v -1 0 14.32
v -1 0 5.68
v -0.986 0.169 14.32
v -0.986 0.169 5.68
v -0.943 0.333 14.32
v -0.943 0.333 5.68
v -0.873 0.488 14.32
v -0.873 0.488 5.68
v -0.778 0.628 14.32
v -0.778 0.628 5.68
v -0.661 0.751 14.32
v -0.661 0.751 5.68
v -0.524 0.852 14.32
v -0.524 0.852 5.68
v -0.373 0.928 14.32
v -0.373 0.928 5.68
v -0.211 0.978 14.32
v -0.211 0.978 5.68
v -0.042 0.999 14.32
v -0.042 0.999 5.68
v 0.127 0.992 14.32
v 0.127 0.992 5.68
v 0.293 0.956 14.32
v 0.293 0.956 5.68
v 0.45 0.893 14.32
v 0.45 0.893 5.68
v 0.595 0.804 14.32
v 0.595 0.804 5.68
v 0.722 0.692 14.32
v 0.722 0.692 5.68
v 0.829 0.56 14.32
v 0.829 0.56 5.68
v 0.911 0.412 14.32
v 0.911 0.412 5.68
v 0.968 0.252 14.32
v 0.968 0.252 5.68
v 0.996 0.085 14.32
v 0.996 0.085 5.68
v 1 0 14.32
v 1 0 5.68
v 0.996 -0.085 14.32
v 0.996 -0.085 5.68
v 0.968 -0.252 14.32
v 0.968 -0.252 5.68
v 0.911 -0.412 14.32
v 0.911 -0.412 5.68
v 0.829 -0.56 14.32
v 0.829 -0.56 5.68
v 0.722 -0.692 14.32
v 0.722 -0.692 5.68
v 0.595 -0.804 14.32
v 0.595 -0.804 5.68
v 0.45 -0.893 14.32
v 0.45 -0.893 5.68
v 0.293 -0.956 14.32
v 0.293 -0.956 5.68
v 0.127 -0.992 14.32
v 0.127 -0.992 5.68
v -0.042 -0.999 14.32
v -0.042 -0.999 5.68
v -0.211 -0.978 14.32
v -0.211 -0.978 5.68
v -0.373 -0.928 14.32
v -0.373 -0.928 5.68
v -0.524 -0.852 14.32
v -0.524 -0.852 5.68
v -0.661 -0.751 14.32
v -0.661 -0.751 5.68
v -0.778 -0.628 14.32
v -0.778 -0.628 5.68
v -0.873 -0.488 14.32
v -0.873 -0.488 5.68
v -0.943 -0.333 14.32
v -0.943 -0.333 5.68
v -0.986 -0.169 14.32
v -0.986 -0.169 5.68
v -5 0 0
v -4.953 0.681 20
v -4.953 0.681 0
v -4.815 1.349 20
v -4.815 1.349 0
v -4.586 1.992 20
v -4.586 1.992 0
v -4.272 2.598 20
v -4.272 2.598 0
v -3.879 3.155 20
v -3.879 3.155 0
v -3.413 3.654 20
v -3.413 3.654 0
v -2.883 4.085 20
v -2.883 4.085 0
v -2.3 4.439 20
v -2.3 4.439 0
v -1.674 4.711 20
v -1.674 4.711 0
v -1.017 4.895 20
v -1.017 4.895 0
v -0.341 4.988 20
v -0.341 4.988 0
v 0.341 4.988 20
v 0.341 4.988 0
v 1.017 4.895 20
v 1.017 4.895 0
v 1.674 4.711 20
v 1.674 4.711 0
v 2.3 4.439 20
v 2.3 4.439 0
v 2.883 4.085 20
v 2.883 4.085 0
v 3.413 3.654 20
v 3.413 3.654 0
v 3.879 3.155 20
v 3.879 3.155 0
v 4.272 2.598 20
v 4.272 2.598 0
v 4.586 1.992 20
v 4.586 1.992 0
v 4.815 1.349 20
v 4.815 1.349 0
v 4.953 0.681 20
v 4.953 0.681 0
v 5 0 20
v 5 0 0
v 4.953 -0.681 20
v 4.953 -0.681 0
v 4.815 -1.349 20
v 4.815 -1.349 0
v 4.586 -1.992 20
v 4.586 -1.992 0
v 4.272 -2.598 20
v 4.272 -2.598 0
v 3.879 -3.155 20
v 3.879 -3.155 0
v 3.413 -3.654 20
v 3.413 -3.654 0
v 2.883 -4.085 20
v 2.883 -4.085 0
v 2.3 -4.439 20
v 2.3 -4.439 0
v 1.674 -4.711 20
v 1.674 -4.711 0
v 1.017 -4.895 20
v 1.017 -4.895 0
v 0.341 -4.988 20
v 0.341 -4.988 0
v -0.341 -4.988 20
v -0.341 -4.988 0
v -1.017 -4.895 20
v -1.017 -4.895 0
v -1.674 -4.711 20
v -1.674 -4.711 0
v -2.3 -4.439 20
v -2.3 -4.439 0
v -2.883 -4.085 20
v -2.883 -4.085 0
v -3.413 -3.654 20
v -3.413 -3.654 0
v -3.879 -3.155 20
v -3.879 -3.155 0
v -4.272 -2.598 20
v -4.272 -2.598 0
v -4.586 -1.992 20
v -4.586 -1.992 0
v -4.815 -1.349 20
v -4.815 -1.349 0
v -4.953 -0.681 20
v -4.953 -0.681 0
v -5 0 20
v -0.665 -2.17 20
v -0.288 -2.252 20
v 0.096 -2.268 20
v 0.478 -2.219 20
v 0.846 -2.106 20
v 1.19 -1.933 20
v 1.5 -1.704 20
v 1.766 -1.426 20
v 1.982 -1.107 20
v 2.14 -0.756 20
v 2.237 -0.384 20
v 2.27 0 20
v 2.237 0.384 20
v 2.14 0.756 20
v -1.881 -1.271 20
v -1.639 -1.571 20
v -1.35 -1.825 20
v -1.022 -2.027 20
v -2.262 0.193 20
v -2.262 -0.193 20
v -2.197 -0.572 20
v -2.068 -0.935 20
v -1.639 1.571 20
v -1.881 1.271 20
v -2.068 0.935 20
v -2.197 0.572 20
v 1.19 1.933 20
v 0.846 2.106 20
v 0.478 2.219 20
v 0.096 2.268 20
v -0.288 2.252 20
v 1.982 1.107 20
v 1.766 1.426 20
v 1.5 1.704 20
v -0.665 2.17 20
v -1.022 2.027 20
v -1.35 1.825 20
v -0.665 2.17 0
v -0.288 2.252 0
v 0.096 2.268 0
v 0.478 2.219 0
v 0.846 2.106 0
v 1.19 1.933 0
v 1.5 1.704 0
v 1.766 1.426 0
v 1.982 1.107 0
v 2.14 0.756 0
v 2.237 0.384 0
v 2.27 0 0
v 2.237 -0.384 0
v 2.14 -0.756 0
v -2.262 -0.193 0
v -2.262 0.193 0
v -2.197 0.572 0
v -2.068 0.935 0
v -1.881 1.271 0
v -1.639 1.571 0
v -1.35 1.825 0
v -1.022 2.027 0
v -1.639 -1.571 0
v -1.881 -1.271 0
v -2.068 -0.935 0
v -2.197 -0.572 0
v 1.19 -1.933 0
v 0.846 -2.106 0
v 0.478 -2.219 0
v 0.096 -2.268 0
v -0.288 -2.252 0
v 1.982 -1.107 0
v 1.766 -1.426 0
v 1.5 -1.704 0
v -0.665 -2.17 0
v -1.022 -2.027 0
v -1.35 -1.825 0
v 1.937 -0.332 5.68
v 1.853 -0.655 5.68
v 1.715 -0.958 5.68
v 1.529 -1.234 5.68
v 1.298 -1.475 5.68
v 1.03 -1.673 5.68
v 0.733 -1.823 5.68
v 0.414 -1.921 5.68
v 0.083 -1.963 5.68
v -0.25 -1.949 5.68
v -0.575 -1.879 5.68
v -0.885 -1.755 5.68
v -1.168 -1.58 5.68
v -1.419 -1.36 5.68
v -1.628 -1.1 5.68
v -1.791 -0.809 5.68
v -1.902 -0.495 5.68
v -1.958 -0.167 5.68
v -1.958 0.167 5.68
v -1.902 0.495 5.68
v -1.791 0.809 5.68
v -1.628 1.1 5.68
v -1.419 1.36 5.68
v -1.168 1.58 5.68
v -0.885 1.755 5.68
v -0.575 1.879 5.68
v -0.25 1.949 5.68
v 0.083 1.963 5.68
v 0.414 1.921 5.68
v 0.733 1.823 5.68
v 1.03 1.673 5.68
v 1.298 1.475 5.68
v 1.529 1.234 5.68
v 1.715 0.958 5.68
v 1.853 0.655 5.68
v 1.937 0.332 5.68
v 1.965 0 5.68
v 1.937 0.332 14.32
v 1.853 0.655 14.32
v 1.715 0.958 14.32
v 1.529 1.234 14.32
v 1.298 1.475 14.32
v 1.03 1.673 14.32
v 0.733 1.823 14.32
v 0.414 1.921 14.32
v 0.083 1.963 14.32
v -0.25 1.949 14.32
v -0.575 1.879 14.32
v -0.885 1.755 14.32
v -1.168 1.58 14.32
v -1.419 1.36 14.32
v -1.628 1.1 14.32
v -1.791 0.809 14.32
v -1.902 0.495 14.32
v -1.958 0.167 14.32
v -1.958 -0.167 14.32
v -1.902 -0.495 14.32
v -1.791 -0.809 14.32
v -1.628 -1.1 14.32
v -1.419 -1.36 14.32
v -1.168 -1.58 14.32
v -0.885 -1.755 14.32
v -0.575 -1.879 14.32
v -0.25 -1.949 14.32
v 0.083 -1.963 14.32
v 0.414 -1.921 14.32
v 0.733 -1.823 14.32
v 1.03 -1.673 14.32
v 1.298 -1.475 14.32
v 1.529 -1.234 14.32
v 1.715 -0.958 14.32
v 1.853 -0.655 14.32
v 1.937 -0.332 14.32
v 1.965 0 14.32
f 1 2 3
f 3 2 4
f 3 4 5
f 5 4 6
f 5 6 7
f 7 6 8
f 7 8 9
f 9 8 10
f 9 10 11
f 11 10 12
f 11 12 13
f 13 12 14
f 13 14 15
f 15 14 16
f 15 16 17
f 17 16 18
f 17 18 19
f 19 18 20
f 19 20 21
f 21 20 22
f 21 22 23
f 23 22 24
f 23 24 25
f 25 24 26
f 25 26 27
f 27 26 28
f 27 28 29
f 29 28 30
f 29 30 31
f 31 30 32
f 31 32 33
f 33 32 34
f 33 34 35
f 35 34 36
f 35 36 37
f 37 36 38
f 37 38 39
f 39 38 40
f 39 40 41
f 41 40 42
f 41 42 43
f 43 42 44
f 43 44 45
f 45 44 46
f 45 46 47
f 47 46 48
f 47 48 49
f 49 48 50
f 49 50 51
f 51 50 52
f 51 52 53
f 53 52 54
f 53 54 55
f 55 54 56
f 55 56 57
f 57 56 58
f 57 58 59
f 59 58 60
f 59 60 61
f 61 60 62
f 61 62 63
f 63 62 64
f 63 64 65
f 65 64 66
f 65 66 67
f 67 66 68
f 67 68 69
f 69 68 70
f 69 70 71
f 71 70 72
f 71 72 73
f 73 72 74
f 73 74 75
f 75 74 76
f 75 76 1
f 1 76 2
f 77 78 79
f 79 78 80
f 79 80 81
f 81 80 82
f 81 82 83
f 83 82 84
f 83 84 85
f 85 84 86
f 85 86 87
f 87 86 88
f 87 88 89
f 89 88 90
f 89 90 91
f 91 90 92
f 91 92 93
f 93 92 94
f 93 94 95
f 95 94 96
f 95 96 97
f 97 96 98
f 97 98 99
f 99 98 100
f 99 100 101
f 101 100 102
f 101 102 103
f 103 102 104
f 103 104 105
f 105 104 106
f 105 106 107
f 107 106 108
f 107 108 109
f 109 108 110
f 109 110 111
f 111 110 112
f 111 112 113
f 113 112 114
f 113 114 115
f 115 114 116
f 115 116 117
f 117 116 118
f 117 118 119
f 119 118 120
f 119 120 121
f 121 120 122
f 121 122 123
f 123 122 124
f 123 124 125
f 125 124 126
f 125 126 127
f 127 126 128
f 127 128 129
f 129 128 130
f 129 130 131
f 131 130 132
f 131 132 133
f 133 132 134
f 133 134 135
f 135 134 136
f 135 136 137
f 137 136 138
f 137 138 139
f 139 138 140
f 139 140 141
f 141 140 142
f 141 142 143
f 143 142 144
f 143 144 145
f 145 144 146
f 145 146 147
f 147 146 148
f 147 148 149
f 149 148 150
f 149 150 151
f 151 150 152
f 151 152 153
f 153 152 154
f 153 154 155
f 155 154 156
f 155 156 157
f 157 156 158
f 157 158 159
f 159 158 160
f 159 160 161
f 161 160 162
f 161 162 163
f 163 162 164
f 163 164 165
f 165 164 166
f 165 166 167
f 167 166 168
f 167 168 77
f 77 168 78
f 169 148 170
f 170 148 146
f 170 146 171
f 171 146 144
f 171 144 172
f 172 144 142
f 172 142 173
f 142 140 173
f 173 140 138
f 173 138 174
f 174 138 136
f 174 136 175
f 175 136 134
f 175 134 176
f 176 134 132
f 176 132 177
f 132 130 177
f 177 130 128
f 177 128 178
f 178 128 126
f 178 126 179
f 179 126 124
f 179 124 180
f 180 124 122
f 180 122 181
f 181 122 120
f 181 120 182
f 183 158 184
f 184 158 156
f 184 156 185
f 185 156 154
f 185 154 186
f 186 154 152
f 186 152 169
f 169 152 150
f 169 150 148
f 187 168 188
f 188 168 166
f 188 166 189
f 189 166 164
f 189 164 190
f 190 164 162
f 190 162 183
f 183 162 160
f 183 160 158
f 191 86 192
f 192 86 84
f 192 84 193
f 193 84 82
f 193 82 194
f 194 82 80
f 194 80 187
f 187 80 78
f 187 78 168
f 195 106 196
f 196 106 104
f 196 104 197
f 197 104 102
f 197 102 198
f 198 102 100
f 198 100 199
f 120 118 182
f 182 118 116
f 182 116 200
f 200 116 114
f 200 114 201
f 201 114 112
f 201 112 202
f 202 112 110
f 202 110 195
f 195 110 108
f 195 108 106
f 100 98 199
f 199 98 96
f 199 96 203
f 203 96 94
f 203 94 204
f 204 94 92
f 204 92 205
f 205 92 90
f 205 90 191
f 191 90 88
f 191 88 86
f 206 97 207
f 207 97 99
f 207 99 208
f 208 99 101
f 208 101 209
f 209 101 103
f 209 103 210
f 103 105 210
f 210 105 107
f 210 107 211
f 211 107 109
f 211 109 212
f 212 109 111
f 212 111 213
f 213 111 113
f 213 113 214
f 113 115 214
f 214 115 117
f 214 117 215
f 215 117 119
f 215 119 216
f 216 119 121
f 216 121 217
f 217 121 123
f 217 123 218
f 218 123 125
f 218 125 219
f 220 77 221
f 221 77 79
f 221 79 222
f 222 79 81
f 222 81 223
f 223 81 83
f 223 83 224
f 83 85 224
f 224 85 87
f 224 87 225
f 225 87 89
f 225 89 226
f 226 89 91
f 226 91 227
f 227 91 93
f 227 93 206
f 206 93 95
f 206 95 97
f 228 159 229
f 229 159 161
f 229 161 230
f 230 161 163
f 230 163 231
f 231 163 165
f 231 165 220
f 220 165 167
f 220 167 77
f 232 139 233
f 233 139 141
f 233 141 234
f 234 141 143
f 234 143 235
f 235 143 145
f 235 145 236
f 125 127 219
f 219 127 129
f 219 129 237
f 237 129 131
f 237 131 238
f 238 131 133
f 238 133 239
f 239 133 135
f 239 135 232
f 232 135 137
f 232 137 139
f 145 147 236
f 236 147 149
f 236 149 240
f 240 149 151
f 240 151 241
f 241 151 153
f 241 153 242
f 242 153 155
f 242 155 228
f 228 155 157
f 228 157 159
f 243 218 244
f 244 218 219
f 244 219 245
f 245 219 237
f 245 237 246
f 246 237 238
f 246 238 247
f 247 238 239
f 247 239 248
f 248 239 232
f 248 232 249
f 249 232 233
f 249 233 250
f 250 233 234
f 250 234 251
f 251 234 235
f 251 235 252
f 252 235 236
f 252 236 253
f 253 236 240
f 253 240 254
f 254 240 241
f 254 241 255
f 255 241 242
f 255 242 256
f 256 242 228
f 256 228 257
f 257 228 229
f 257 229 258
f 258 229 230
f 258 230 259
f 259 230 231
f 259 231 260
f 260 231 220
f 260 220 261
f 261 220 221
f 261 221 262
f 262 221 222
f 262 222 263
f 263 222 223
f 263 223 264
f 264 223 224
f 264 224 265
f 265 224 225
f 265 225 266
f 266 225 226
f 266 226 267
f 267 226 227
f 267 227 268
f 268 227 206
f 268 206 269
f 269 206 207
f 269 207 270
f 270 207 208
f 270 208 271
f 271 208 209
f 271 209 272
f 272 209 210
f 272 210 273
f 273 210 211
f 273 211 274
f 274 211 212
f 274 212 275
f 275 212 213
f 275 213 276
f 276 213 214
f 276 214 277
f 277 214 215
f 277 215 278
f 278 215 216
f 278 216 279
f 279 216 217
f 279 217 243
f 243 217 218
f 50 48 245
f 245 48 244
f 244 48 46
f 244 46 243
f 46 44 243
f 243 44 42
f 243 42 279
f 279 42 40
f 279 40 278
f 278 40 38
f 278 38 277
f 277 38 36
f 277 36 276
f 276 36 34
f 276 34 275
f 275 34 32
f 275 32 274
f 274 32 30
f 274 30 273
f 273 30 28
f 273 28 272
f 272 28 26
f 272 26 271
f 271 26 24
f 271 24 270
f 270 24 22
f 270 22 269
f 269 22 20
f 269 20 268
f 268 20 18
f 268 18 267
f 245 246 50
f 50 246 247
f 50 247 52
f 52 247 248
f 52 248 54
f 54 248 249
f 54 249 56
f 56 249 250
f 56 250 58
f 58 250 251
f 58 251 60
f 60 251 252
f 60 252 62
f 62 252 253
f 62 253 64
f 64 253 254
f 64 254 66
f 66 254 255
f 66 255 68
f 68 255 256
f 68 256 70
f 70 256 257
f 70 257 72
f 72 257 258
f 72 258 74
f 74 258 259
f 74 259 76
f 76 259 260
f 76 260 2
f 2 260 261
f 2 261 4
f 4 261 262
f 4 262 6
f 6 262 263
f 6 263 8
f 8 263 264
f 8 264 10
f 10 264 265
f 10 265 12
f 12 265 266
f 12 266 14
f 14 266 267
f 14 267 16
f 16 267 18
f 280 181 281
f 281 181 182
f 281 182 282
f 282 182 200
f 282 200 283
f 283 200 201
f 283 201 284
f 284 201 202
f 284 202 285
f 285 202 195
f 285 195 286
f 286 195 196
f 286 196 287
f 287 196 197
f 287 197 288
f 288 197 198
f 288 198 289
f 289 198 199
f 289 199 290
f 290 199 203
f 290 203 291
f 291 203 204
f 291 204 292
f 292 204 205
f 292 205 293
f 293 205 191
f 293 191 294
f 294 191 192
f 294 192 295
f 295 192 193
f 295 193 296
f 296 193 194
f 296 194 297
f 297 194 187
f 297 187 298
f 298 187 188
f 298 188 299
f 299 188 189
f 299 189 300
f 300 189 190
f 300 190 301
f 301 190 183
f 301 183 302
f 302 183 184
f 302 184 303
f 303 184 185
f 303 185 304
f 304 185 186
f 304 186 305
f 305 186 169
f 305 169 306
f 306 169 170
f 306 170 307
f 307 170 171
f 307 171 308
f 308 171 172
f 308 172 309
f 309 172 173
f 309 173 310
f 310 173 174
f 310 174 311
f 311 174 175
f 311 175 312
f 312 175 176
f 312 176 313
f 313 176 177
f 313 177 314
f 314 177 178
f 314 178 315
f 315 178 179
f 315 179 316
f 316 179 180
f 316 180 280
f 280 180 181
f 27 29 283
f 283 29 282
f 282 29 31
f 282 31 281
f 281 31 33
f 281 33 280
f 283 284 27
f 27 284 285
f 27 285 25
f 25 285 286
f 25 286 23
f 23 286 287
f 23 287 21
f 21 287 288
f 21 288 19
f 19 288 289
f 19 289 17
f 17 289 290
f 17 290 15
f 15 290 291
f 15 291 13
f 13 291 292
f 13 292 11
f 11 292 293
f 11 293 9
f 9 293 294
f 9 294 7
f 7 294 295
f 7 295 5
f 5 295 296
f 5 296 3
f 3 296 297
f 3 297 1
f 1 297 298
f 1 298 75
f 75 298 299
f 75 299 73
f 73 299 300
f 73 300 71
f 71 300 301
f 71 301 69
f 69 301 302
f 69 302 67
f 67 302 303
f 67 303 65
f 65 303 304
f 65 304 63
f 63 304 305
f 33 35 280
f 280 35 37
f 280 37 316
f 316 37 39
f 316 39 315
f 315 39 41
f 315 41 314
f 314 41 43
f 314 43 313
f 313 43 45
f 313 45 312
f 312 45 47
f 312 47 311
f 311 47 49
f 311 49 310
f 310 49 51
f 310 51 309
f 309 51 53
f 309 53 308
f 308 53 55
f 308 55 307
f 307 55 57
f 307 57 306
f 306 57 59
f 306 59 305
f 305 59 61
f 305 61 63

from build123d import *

# Parameters (mm, degrees)
SKETCH1_R           = 5
BOSS_EXTRUDE1_DEPTH = 20
SKETCH2_R           = 2.27
CUT_EXTRUDE1_DEPTH  = 5.68
CUT_EXTRUDE1_TAPER  = 3.074
SKETCH7_R           = 1
CUT_EXTRUDE2_DEPTH  = 21
SKETCH9_R           = 2.27
CUT_EXTRUDE3_DEPTH  = 5.68
CUT_EXTRUDE3_TAPER  = 3.074


with BuildPart() as part:
    # Sketch1 → Boss-Extrude1 (new body)
    with BuildSketch(Plane.XY):
        Circle(SKETCH1_R)
    extrude(amount=BOSS_EXTRUDE1_DEPTH)

    # Sketch2 → Cut-Extrude1 (cut)
    with BuildSketch(Plane.XY):
        Circle(SKETCH2_R)
    extrude(amount=CUT_EXTRUDE1_DEPTH, taper=CUT_EXTRUDE1_TAPER, mode=Mode.SUBTRACT)

    # Sketch7 → Cut-Extrude2 (cut, through all)
    with BuildSketch(Plane.XY):
        Circle(SKETCH7_R)
    extrude(amount=CUT_EXTRUDE2_DEPTH, mode=Mode.SUBTRACT)

    # Sketch9 → Cut-Extrude3 (cut)
    with BuildSketch(Plane.XY.offset(20)):
        Circle(SKETCH9_R)
    extrude(amount=-CUT_EXTRUDE3_DEPTH, taper=CUT_EXTRUDE3_TAPER, mode=Mode.SUBTRACT)


solid = part.part
